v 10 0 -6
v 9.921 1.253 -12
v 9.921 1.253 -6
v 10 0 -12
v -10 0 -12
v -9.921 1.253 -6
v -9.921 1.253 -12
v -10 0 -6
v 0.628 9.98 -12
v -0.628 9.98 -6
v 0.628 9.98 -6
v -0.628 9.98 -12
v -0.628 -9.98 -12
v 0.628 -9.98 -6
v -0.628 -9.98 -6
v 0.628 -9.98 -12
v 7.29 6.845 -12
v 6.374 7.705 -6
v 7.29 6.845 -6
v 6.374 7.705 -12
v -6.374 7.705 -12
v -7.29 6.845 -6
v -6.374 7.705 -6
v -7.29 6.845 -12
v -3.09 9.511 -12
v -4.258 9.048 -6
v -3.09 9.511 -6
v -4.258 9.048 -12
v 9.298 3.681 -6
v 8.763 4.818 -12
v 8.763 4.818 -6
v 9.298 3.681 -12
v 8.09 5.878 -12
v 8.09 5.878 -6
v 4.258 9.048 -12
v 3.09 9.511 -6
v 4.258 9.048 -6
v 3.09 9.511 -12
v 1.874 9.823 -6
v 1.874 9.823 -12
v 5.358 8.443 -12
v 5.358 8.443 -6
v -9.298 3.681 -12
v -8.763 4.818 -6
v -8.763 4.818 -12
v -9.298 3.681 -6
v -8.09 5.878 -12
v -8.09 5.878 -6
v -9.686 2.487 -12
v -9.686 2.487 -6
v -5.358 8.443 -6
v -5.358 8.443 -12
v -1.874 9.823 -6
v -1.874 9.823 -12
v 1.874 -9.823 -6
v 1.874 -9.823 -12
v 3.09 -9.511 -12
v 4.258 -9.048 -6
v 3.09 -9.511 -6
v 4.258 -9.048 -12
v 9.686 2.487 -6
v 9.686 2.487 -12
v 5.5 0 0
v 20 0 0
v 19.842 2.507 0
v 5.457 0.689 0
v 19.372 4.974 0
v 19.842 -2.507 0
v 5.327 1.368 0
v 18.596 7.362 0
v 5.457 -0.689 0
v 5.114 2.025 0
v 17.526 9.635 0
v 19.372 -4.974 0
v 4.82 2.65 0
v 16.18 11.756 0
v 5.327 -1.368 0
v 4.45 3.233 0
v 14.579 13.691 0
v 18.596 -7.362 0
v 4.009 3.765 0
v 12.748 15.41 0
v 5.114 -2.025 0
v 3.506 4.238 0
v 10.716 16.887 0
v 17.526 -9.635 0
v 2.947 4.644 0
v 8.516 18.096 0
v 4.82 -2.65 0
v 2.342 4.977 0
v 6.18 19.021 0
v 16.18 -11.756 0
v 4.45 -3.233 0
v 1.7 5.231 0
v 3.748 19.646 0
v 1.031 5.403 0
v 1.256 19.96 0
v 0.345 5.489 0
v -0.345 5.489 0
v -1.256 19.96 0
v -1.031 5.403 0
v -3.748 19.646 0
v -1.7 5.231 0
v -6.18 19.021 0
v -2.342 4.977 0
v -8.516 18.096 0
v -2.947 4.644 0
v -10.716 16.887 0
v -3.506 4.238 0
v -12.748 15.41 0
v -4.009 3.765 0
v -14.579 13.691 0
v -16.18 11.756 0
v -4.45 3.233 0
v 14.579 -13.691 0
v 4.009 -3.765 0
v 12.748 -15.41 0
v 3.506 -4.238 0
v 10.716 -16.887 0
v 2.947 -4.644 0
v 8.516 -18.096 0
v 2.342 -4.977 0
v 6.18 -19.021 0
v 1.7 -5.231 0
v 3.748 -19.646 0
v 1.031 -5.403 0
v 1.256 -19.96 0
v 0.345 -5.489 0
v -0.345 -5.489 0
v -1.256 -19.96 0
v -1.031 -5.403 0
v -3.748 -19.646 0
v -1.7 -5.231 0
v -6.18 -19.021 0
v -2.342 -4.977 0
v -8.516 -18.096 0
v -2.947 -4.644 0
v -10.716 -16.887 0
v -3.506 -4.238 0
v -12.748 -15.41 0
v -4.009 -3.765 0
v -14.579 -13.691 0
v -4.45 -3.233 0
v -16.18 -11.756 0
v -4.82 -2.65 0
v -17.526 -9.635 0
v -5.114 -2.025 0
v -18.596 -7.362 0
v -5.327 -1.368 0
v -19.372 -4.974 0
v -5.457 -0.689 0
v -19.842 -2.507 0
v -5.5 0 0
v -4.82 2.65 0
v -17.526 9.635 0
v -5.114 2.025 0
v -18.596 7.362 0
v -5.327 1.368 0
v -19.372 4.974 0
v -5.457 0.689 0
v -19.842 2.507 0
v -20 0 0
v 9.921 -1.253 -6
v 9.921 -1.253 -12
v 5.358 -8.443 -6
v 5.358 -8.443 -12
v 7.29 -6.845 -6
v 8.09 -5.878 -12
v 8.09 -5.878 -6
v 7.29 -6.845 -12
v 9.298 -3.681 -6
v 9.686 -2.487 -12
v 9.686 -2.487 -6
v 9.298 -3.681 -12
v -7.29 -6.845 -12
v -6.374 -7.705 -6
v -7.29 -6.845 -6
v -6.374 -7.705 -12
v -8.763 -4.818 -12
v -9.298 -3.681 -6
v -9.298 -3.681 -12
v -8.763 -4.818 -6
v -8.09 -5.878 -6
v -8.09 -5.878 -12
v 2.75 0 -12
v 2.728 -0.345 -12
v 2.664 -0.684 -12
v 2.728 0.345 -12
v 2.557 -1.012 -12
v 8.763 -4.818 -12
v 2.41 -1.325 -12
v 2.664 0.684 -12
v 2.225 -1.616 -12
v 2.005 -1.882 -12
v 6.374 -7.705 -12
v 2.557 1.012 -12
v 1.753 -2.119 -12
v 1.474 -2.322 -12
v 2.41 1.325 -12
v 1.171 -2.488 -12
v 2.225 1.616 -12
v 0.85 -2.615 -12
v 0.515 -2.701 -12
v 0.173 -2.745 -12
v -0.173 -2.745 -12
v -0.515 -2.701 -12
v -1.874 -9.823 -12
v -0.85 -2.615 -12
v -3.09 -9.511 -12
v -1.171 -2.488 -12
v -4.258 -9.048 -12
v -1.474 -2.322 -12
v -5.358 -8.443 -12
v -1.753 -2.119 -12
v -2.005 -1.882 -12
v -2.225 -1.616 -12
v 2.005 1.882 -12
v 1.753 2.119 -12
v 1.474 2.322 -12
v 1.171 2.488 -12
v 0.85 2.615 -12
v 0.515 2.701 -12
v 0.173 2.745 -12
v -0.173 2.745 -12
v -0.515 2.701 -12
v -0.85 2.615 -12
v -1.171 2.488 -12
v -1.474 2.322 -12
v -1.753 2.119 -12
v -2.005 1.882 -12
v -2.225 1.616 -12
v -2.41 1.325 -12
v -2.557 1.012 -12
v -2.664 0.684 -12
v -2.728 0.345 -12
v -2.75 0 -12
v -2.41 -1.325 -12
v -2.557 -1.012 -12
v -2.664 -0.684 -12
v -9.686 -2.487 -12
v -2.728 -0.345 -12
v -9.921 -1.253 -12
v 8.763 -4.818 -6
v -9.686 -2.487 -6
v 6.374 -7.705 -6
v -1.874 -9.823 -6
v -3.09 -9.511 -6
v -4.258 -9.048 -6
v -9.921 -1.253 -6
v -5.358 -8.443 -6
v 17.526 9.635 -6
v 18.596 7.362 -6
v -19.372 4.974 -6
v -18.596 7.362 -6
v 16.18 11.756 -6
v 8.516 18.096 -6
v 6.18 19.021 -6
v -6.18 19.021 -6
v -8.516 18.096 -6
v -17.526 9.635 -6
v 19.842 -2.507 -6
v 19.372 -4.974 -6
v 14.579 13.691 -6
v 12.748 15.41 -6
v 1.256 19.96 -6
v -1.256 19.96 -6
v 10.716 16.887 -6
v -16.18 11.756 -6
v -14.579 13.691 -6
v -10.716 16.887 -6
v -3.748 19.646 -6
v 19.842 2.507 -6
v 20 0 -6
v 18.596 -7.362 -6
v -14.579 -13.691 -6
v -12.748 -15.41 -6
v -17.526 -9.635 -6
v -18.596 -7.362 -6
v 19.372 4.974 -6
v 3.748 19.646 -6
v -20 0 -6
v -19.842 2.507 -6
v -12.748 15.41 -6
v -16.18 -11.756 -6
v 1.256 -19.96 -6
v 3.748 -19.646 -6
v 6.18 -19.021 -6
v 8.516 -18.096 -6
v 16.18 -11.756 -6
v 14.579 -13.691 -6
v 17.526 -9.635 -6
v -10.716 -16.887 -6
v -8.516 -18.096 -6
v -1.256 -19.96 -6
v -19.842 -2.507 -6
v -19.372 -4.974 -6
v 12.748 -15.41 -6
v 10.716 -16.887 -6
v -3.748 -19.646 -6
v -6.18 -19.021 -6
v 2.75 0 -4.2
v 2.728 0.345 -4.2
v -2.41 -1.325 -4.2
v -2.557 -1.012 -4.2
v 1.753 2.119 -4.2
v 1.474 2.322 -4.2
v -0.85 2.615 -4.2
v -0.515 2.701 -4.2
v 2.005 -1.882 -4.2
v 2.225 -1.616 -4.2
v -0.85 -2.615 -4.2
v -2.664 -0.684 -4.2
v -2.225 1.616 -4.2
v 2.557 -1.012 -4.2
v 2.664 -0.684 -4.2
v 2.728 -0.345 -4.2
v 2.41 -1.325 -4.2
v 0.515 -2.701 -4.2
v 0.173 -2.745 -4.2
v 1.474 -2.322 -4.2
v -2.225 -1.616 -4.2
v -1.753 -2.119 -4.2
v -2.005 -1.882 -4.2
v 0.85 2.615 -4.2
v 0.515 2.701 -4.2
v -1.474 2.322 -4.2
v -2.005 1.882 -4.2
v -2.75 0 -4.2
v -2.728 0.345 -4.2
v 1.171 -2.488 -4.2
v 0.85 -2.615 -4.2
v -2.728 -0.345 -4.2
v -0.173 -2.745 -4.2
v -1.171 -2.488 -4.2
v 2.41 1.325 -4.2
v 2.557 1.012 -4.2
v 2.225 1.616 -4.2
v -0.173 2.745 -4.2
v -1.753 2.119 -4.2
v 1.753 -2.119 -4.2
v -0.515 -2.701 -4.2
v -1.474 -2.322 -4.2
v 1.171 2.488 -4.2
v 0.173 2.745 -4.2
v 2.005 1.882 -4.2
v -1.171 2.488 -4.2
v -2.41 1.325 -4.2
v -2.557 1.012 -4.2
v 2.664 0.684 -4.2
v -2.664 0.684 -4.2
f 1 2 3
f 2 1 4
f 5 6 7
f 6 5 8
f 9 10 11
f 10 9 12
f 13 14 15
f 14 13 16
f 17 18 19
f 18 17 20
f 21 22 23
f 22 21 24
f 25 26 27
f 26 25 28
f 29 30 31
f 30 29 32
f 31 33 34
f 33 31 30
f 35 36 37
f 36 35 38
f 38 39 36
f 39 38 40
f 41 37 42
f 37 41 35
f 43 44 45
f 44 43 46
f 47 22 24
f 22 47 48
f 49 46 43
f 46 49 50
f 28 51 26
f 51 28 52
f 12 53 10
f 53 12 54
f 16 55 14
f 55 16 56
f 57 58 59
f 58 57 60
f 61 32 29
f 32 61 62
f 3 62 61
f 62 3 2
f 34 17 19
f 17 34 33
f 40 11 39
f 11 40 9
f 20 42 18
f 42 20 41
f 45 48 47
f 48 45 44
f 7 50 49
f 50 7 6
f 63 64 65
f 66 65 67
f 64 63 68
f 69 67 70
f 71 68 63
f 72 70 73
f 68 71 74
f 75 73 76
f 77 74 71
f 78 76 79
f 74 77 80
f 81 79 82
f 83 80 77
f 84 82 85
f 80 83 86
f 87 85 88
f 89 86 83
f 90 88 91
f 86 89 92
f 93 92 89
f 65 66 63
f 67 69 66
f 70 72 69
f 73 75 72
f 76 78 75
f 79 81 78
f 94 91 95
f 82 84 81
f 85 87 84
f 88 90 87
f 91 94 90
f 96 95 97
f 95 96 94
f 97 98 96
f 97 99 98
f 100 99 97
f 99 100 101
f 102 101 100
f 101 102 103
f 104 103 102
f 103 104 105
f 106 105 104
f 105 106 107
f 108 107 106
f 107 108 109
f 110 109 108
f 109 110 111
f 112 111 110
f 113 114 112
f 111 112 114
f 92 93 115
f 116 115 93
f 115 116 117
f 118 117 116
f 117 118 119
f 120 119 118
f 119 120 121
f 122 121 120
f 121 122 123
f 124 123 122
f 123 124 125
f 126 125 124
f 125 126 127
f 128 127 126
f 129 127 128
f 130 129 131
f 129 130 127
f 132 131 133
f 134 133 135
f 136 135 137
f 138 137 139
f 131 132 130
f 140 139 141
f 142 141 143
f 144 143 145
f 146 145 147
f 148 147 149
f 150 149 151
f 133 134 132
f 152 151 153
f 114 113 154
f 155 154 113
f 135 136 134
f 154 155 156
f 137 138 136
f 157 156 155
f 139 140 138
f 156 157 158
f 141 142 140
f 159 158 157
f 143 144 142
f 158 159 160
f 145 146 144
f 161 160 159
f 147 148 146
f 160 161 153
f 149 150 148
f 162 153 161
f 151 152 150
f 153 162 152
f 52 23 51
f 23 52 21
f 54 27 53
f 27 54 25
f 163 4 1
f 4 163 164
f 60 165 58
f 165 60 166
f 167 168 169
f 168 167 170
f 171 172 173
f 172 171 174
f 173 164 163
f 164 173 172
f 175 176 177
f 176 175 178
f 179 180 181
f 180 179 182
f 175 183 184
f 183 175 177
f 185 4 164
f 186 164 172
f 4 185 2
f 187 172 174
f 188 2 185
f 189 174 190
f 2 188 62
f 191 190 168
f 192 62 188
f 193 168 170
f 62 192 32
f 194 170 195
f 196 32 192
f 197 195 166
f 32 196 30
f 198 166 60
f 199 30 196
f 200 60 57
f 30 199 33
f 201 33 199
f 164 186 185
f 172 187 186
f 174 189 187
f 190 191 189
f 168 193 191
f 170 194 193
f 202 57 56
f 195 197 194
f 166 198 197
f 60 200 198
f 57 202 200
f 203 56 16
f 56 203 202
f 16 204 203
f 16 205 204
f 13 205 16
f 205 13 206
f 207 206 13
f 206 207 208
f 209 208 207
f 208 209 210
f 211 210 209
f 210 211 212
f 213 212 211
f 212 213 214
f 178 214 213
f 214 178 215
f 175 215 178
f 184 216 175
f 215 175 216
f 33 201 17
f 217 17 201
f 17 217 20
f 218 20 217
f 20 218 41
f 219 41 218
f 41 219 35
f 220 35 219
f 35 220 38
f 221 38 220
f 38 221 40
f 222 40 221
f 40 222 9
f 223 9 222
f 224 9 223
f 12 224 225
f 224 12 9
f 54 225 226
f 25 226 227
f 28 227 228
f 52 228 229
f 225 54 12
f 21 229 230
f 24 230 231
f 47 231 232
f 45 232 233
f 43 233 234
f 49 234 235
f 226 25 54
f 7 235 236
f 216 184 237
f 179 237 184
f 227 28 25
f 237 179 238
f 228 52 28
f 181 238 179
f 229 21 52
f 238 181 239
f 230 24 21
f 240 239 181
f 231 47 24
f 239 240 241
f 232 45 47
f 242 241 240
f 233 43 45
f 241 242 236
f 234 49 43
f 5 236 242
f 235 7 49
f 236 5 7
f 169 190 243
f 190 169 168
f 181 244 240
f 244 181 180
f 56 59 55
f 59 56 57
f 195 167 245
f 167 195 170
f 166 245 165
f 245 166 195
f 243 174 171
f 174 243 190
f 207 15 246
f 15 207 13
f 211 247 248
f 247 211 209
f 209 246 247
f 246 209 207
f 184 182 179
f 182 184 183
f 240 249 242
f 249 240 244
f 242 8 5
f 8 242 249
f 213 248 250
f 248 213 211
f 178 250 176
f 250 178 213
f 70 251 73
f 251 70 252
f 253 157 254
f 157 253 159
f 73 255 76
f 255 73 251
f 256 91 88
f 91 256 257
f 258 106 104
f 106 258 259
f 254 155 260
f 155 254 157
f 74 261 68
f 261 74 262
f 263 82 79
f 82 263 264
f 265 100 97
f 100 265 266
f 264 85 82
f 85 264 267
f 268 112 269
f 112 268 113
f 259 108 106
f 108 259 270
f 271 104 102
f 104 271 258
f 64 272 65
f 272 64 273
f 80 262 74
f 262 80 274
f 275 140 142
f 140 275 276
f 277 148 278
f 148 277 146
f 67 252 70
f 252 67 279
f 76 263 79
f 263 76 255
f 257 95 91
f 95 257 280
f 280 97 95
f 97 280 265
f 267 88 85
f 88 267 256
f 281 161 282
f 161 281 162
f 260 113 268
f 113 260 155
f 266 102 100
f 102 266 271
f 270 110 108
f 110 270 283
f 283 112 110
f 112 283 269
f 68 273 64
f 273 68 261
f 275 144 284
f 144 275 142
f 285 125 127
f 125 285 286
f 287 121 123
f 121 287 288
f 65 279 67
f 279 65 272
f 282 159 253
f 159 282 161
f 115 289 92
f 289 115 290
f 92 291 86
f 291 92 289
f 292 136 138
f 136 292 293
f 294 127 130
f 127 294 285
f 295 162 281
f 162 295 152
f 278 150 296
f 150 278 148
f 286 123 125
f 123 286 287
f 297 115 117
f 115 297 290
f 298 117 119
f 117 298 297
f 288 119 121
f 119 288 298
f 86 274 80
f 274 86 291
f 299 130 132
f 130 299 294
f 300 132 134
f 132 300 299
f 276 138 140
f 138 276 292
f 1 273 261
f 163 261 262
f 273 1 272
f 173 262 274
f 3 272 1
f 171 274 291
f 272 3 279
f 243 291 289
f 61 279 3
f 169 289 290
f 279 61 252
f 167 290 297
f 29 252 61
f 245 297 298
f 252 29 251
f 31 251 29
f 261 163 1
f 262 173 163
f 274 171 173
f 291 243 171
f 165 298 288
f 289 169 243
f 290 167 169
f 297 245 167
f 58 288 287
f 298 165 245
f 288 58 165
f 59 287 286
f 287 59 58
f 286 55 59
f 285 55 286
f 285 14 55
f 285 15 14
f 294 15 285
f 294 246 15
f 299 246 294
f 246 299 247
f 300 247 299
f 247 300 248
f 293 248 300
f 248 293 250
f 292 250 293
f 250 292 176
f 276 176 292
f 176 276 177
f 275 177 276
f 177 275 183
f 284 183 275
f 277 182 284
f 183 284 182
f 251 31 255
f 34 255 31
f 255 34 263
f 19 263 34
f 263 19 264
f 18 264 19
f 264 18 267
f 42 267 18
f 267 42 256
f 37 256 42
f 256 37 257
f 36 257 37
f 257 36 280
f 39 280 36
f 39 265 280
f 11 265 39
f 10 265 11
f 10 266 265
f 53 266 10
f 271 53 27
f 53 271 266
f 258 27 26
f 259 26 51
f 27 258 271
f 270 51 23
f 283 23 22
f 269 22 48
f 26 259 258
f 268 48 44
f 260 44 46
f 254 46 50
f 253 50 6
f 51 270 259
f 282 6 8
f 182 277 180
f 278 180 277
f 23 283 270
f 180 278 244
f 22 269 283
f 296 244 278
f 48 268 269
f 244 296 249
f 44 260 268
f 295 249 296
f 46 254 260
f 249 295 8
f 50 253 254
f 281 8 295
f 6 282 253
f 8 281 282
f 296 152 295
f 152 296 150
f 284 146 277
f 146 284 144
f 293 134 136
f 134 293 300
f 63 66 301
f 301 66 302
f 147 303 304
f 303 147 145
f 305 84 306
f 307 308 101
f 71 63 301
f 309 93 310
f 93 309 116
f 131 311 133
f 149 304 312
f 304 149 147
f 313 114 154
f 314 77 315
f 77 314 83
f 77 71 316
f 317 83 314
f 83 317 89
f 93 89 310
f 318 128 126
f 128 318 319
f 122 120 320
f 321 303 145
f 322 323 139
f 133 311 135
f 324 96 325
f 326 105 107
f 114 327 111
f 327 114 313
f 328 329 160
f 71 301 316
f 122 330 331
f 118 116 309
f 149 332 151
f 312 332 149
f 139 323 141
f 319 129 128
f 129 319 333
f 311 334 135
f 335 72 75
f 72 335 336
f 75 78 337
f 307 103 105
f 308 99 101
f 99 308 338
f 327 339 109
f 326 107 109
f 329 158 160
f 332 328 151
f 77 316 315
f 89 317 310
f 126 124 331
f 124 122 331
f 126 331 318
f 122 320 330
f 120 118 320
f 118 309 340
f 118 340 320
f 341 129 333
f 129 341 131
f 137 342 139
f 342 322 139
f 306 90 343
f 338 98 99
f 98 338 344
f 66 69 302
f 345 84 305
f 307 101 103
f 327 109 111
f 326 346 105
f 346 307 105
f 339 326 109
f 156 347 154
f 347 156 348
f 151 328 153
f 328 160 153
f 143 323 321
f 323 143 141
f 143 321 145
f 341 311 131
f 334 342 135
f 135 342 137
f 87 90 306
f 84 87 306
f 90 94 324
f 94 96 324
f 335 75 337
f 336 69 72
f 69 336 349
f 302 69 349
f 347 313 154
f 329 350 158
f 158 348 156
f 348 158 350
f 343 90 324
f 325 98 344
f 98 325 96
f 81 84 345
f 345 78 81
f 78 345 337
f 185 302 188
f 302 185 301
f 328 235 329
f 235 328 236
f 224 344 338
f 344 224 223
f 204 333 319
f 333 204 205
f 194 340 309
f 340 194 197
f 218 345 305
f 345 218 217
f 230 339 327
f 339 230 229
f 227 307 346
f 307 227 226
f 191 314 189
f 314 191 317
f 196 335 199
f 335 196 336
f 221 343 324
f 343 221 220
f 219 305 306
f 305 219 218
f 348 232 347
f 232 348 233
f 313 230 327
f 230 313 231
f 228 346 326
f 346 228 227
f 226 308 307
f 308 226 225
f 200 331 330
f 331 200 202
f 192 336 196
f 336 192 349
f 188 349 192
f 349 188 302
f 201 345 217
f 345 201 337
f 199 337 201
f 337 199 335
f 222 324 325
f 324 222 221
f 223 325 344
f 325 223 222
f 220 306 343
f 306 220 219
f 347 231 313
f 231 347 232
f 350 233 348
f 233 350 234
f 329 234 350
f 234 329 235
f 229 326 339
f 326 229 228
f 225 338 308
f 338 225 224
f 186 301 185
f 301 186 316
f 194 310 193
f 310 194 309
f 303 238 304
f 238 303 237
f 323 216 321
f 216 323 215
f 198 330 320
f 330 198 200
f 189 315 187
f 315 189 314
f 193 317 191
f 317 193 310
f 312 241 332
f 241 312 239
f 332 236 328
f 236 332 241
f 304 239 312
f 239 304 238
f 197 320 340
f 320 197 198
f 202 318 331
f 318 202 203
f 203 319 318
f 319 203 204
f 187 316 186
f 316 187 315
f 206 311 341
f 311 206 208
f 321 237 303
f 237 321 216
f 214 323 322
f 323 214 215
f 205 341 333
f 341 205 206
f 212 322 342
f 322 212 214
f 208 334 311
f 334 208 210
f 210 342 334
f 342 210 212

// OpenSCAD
$fn = 50;


difference() {
	union() {
		translate(v = [0, 0, -12.0000000000]) {
			cylinder(h = 12, r = 10.0000000000);
		}
		translate(v = [0, 0, -6.0000000000]) {
			cylinder(h = 6, r = 20.0000000000);
		}
	}
	union() {
		translate(v = [0, 0, 0]) {
			rotate(a = [0, 0, 0]) {
				difference() {
					union() {
						#translate(v = [0, 0, -12.0000000000]) {
							cylinder(h = 12, r = 2.2500000000);
						}
						#translate(v = [0, 0, -4.2000000000]) {
							cylinder(h = 4.2000000000, r1 = 2.7500000000, r2 = 5.5000000000);
						}
						#translate(v = [0, 0, -12.0000000000]) {
							cylinder(h = 12, r = 2.7500000000);
						}
						#translate(v = [0, 0, -12.0000000000]) {
							cylinder(h = 12, r = 2.2500000000);
						}
					}
					union();
				}
			}
		}
	}
}
